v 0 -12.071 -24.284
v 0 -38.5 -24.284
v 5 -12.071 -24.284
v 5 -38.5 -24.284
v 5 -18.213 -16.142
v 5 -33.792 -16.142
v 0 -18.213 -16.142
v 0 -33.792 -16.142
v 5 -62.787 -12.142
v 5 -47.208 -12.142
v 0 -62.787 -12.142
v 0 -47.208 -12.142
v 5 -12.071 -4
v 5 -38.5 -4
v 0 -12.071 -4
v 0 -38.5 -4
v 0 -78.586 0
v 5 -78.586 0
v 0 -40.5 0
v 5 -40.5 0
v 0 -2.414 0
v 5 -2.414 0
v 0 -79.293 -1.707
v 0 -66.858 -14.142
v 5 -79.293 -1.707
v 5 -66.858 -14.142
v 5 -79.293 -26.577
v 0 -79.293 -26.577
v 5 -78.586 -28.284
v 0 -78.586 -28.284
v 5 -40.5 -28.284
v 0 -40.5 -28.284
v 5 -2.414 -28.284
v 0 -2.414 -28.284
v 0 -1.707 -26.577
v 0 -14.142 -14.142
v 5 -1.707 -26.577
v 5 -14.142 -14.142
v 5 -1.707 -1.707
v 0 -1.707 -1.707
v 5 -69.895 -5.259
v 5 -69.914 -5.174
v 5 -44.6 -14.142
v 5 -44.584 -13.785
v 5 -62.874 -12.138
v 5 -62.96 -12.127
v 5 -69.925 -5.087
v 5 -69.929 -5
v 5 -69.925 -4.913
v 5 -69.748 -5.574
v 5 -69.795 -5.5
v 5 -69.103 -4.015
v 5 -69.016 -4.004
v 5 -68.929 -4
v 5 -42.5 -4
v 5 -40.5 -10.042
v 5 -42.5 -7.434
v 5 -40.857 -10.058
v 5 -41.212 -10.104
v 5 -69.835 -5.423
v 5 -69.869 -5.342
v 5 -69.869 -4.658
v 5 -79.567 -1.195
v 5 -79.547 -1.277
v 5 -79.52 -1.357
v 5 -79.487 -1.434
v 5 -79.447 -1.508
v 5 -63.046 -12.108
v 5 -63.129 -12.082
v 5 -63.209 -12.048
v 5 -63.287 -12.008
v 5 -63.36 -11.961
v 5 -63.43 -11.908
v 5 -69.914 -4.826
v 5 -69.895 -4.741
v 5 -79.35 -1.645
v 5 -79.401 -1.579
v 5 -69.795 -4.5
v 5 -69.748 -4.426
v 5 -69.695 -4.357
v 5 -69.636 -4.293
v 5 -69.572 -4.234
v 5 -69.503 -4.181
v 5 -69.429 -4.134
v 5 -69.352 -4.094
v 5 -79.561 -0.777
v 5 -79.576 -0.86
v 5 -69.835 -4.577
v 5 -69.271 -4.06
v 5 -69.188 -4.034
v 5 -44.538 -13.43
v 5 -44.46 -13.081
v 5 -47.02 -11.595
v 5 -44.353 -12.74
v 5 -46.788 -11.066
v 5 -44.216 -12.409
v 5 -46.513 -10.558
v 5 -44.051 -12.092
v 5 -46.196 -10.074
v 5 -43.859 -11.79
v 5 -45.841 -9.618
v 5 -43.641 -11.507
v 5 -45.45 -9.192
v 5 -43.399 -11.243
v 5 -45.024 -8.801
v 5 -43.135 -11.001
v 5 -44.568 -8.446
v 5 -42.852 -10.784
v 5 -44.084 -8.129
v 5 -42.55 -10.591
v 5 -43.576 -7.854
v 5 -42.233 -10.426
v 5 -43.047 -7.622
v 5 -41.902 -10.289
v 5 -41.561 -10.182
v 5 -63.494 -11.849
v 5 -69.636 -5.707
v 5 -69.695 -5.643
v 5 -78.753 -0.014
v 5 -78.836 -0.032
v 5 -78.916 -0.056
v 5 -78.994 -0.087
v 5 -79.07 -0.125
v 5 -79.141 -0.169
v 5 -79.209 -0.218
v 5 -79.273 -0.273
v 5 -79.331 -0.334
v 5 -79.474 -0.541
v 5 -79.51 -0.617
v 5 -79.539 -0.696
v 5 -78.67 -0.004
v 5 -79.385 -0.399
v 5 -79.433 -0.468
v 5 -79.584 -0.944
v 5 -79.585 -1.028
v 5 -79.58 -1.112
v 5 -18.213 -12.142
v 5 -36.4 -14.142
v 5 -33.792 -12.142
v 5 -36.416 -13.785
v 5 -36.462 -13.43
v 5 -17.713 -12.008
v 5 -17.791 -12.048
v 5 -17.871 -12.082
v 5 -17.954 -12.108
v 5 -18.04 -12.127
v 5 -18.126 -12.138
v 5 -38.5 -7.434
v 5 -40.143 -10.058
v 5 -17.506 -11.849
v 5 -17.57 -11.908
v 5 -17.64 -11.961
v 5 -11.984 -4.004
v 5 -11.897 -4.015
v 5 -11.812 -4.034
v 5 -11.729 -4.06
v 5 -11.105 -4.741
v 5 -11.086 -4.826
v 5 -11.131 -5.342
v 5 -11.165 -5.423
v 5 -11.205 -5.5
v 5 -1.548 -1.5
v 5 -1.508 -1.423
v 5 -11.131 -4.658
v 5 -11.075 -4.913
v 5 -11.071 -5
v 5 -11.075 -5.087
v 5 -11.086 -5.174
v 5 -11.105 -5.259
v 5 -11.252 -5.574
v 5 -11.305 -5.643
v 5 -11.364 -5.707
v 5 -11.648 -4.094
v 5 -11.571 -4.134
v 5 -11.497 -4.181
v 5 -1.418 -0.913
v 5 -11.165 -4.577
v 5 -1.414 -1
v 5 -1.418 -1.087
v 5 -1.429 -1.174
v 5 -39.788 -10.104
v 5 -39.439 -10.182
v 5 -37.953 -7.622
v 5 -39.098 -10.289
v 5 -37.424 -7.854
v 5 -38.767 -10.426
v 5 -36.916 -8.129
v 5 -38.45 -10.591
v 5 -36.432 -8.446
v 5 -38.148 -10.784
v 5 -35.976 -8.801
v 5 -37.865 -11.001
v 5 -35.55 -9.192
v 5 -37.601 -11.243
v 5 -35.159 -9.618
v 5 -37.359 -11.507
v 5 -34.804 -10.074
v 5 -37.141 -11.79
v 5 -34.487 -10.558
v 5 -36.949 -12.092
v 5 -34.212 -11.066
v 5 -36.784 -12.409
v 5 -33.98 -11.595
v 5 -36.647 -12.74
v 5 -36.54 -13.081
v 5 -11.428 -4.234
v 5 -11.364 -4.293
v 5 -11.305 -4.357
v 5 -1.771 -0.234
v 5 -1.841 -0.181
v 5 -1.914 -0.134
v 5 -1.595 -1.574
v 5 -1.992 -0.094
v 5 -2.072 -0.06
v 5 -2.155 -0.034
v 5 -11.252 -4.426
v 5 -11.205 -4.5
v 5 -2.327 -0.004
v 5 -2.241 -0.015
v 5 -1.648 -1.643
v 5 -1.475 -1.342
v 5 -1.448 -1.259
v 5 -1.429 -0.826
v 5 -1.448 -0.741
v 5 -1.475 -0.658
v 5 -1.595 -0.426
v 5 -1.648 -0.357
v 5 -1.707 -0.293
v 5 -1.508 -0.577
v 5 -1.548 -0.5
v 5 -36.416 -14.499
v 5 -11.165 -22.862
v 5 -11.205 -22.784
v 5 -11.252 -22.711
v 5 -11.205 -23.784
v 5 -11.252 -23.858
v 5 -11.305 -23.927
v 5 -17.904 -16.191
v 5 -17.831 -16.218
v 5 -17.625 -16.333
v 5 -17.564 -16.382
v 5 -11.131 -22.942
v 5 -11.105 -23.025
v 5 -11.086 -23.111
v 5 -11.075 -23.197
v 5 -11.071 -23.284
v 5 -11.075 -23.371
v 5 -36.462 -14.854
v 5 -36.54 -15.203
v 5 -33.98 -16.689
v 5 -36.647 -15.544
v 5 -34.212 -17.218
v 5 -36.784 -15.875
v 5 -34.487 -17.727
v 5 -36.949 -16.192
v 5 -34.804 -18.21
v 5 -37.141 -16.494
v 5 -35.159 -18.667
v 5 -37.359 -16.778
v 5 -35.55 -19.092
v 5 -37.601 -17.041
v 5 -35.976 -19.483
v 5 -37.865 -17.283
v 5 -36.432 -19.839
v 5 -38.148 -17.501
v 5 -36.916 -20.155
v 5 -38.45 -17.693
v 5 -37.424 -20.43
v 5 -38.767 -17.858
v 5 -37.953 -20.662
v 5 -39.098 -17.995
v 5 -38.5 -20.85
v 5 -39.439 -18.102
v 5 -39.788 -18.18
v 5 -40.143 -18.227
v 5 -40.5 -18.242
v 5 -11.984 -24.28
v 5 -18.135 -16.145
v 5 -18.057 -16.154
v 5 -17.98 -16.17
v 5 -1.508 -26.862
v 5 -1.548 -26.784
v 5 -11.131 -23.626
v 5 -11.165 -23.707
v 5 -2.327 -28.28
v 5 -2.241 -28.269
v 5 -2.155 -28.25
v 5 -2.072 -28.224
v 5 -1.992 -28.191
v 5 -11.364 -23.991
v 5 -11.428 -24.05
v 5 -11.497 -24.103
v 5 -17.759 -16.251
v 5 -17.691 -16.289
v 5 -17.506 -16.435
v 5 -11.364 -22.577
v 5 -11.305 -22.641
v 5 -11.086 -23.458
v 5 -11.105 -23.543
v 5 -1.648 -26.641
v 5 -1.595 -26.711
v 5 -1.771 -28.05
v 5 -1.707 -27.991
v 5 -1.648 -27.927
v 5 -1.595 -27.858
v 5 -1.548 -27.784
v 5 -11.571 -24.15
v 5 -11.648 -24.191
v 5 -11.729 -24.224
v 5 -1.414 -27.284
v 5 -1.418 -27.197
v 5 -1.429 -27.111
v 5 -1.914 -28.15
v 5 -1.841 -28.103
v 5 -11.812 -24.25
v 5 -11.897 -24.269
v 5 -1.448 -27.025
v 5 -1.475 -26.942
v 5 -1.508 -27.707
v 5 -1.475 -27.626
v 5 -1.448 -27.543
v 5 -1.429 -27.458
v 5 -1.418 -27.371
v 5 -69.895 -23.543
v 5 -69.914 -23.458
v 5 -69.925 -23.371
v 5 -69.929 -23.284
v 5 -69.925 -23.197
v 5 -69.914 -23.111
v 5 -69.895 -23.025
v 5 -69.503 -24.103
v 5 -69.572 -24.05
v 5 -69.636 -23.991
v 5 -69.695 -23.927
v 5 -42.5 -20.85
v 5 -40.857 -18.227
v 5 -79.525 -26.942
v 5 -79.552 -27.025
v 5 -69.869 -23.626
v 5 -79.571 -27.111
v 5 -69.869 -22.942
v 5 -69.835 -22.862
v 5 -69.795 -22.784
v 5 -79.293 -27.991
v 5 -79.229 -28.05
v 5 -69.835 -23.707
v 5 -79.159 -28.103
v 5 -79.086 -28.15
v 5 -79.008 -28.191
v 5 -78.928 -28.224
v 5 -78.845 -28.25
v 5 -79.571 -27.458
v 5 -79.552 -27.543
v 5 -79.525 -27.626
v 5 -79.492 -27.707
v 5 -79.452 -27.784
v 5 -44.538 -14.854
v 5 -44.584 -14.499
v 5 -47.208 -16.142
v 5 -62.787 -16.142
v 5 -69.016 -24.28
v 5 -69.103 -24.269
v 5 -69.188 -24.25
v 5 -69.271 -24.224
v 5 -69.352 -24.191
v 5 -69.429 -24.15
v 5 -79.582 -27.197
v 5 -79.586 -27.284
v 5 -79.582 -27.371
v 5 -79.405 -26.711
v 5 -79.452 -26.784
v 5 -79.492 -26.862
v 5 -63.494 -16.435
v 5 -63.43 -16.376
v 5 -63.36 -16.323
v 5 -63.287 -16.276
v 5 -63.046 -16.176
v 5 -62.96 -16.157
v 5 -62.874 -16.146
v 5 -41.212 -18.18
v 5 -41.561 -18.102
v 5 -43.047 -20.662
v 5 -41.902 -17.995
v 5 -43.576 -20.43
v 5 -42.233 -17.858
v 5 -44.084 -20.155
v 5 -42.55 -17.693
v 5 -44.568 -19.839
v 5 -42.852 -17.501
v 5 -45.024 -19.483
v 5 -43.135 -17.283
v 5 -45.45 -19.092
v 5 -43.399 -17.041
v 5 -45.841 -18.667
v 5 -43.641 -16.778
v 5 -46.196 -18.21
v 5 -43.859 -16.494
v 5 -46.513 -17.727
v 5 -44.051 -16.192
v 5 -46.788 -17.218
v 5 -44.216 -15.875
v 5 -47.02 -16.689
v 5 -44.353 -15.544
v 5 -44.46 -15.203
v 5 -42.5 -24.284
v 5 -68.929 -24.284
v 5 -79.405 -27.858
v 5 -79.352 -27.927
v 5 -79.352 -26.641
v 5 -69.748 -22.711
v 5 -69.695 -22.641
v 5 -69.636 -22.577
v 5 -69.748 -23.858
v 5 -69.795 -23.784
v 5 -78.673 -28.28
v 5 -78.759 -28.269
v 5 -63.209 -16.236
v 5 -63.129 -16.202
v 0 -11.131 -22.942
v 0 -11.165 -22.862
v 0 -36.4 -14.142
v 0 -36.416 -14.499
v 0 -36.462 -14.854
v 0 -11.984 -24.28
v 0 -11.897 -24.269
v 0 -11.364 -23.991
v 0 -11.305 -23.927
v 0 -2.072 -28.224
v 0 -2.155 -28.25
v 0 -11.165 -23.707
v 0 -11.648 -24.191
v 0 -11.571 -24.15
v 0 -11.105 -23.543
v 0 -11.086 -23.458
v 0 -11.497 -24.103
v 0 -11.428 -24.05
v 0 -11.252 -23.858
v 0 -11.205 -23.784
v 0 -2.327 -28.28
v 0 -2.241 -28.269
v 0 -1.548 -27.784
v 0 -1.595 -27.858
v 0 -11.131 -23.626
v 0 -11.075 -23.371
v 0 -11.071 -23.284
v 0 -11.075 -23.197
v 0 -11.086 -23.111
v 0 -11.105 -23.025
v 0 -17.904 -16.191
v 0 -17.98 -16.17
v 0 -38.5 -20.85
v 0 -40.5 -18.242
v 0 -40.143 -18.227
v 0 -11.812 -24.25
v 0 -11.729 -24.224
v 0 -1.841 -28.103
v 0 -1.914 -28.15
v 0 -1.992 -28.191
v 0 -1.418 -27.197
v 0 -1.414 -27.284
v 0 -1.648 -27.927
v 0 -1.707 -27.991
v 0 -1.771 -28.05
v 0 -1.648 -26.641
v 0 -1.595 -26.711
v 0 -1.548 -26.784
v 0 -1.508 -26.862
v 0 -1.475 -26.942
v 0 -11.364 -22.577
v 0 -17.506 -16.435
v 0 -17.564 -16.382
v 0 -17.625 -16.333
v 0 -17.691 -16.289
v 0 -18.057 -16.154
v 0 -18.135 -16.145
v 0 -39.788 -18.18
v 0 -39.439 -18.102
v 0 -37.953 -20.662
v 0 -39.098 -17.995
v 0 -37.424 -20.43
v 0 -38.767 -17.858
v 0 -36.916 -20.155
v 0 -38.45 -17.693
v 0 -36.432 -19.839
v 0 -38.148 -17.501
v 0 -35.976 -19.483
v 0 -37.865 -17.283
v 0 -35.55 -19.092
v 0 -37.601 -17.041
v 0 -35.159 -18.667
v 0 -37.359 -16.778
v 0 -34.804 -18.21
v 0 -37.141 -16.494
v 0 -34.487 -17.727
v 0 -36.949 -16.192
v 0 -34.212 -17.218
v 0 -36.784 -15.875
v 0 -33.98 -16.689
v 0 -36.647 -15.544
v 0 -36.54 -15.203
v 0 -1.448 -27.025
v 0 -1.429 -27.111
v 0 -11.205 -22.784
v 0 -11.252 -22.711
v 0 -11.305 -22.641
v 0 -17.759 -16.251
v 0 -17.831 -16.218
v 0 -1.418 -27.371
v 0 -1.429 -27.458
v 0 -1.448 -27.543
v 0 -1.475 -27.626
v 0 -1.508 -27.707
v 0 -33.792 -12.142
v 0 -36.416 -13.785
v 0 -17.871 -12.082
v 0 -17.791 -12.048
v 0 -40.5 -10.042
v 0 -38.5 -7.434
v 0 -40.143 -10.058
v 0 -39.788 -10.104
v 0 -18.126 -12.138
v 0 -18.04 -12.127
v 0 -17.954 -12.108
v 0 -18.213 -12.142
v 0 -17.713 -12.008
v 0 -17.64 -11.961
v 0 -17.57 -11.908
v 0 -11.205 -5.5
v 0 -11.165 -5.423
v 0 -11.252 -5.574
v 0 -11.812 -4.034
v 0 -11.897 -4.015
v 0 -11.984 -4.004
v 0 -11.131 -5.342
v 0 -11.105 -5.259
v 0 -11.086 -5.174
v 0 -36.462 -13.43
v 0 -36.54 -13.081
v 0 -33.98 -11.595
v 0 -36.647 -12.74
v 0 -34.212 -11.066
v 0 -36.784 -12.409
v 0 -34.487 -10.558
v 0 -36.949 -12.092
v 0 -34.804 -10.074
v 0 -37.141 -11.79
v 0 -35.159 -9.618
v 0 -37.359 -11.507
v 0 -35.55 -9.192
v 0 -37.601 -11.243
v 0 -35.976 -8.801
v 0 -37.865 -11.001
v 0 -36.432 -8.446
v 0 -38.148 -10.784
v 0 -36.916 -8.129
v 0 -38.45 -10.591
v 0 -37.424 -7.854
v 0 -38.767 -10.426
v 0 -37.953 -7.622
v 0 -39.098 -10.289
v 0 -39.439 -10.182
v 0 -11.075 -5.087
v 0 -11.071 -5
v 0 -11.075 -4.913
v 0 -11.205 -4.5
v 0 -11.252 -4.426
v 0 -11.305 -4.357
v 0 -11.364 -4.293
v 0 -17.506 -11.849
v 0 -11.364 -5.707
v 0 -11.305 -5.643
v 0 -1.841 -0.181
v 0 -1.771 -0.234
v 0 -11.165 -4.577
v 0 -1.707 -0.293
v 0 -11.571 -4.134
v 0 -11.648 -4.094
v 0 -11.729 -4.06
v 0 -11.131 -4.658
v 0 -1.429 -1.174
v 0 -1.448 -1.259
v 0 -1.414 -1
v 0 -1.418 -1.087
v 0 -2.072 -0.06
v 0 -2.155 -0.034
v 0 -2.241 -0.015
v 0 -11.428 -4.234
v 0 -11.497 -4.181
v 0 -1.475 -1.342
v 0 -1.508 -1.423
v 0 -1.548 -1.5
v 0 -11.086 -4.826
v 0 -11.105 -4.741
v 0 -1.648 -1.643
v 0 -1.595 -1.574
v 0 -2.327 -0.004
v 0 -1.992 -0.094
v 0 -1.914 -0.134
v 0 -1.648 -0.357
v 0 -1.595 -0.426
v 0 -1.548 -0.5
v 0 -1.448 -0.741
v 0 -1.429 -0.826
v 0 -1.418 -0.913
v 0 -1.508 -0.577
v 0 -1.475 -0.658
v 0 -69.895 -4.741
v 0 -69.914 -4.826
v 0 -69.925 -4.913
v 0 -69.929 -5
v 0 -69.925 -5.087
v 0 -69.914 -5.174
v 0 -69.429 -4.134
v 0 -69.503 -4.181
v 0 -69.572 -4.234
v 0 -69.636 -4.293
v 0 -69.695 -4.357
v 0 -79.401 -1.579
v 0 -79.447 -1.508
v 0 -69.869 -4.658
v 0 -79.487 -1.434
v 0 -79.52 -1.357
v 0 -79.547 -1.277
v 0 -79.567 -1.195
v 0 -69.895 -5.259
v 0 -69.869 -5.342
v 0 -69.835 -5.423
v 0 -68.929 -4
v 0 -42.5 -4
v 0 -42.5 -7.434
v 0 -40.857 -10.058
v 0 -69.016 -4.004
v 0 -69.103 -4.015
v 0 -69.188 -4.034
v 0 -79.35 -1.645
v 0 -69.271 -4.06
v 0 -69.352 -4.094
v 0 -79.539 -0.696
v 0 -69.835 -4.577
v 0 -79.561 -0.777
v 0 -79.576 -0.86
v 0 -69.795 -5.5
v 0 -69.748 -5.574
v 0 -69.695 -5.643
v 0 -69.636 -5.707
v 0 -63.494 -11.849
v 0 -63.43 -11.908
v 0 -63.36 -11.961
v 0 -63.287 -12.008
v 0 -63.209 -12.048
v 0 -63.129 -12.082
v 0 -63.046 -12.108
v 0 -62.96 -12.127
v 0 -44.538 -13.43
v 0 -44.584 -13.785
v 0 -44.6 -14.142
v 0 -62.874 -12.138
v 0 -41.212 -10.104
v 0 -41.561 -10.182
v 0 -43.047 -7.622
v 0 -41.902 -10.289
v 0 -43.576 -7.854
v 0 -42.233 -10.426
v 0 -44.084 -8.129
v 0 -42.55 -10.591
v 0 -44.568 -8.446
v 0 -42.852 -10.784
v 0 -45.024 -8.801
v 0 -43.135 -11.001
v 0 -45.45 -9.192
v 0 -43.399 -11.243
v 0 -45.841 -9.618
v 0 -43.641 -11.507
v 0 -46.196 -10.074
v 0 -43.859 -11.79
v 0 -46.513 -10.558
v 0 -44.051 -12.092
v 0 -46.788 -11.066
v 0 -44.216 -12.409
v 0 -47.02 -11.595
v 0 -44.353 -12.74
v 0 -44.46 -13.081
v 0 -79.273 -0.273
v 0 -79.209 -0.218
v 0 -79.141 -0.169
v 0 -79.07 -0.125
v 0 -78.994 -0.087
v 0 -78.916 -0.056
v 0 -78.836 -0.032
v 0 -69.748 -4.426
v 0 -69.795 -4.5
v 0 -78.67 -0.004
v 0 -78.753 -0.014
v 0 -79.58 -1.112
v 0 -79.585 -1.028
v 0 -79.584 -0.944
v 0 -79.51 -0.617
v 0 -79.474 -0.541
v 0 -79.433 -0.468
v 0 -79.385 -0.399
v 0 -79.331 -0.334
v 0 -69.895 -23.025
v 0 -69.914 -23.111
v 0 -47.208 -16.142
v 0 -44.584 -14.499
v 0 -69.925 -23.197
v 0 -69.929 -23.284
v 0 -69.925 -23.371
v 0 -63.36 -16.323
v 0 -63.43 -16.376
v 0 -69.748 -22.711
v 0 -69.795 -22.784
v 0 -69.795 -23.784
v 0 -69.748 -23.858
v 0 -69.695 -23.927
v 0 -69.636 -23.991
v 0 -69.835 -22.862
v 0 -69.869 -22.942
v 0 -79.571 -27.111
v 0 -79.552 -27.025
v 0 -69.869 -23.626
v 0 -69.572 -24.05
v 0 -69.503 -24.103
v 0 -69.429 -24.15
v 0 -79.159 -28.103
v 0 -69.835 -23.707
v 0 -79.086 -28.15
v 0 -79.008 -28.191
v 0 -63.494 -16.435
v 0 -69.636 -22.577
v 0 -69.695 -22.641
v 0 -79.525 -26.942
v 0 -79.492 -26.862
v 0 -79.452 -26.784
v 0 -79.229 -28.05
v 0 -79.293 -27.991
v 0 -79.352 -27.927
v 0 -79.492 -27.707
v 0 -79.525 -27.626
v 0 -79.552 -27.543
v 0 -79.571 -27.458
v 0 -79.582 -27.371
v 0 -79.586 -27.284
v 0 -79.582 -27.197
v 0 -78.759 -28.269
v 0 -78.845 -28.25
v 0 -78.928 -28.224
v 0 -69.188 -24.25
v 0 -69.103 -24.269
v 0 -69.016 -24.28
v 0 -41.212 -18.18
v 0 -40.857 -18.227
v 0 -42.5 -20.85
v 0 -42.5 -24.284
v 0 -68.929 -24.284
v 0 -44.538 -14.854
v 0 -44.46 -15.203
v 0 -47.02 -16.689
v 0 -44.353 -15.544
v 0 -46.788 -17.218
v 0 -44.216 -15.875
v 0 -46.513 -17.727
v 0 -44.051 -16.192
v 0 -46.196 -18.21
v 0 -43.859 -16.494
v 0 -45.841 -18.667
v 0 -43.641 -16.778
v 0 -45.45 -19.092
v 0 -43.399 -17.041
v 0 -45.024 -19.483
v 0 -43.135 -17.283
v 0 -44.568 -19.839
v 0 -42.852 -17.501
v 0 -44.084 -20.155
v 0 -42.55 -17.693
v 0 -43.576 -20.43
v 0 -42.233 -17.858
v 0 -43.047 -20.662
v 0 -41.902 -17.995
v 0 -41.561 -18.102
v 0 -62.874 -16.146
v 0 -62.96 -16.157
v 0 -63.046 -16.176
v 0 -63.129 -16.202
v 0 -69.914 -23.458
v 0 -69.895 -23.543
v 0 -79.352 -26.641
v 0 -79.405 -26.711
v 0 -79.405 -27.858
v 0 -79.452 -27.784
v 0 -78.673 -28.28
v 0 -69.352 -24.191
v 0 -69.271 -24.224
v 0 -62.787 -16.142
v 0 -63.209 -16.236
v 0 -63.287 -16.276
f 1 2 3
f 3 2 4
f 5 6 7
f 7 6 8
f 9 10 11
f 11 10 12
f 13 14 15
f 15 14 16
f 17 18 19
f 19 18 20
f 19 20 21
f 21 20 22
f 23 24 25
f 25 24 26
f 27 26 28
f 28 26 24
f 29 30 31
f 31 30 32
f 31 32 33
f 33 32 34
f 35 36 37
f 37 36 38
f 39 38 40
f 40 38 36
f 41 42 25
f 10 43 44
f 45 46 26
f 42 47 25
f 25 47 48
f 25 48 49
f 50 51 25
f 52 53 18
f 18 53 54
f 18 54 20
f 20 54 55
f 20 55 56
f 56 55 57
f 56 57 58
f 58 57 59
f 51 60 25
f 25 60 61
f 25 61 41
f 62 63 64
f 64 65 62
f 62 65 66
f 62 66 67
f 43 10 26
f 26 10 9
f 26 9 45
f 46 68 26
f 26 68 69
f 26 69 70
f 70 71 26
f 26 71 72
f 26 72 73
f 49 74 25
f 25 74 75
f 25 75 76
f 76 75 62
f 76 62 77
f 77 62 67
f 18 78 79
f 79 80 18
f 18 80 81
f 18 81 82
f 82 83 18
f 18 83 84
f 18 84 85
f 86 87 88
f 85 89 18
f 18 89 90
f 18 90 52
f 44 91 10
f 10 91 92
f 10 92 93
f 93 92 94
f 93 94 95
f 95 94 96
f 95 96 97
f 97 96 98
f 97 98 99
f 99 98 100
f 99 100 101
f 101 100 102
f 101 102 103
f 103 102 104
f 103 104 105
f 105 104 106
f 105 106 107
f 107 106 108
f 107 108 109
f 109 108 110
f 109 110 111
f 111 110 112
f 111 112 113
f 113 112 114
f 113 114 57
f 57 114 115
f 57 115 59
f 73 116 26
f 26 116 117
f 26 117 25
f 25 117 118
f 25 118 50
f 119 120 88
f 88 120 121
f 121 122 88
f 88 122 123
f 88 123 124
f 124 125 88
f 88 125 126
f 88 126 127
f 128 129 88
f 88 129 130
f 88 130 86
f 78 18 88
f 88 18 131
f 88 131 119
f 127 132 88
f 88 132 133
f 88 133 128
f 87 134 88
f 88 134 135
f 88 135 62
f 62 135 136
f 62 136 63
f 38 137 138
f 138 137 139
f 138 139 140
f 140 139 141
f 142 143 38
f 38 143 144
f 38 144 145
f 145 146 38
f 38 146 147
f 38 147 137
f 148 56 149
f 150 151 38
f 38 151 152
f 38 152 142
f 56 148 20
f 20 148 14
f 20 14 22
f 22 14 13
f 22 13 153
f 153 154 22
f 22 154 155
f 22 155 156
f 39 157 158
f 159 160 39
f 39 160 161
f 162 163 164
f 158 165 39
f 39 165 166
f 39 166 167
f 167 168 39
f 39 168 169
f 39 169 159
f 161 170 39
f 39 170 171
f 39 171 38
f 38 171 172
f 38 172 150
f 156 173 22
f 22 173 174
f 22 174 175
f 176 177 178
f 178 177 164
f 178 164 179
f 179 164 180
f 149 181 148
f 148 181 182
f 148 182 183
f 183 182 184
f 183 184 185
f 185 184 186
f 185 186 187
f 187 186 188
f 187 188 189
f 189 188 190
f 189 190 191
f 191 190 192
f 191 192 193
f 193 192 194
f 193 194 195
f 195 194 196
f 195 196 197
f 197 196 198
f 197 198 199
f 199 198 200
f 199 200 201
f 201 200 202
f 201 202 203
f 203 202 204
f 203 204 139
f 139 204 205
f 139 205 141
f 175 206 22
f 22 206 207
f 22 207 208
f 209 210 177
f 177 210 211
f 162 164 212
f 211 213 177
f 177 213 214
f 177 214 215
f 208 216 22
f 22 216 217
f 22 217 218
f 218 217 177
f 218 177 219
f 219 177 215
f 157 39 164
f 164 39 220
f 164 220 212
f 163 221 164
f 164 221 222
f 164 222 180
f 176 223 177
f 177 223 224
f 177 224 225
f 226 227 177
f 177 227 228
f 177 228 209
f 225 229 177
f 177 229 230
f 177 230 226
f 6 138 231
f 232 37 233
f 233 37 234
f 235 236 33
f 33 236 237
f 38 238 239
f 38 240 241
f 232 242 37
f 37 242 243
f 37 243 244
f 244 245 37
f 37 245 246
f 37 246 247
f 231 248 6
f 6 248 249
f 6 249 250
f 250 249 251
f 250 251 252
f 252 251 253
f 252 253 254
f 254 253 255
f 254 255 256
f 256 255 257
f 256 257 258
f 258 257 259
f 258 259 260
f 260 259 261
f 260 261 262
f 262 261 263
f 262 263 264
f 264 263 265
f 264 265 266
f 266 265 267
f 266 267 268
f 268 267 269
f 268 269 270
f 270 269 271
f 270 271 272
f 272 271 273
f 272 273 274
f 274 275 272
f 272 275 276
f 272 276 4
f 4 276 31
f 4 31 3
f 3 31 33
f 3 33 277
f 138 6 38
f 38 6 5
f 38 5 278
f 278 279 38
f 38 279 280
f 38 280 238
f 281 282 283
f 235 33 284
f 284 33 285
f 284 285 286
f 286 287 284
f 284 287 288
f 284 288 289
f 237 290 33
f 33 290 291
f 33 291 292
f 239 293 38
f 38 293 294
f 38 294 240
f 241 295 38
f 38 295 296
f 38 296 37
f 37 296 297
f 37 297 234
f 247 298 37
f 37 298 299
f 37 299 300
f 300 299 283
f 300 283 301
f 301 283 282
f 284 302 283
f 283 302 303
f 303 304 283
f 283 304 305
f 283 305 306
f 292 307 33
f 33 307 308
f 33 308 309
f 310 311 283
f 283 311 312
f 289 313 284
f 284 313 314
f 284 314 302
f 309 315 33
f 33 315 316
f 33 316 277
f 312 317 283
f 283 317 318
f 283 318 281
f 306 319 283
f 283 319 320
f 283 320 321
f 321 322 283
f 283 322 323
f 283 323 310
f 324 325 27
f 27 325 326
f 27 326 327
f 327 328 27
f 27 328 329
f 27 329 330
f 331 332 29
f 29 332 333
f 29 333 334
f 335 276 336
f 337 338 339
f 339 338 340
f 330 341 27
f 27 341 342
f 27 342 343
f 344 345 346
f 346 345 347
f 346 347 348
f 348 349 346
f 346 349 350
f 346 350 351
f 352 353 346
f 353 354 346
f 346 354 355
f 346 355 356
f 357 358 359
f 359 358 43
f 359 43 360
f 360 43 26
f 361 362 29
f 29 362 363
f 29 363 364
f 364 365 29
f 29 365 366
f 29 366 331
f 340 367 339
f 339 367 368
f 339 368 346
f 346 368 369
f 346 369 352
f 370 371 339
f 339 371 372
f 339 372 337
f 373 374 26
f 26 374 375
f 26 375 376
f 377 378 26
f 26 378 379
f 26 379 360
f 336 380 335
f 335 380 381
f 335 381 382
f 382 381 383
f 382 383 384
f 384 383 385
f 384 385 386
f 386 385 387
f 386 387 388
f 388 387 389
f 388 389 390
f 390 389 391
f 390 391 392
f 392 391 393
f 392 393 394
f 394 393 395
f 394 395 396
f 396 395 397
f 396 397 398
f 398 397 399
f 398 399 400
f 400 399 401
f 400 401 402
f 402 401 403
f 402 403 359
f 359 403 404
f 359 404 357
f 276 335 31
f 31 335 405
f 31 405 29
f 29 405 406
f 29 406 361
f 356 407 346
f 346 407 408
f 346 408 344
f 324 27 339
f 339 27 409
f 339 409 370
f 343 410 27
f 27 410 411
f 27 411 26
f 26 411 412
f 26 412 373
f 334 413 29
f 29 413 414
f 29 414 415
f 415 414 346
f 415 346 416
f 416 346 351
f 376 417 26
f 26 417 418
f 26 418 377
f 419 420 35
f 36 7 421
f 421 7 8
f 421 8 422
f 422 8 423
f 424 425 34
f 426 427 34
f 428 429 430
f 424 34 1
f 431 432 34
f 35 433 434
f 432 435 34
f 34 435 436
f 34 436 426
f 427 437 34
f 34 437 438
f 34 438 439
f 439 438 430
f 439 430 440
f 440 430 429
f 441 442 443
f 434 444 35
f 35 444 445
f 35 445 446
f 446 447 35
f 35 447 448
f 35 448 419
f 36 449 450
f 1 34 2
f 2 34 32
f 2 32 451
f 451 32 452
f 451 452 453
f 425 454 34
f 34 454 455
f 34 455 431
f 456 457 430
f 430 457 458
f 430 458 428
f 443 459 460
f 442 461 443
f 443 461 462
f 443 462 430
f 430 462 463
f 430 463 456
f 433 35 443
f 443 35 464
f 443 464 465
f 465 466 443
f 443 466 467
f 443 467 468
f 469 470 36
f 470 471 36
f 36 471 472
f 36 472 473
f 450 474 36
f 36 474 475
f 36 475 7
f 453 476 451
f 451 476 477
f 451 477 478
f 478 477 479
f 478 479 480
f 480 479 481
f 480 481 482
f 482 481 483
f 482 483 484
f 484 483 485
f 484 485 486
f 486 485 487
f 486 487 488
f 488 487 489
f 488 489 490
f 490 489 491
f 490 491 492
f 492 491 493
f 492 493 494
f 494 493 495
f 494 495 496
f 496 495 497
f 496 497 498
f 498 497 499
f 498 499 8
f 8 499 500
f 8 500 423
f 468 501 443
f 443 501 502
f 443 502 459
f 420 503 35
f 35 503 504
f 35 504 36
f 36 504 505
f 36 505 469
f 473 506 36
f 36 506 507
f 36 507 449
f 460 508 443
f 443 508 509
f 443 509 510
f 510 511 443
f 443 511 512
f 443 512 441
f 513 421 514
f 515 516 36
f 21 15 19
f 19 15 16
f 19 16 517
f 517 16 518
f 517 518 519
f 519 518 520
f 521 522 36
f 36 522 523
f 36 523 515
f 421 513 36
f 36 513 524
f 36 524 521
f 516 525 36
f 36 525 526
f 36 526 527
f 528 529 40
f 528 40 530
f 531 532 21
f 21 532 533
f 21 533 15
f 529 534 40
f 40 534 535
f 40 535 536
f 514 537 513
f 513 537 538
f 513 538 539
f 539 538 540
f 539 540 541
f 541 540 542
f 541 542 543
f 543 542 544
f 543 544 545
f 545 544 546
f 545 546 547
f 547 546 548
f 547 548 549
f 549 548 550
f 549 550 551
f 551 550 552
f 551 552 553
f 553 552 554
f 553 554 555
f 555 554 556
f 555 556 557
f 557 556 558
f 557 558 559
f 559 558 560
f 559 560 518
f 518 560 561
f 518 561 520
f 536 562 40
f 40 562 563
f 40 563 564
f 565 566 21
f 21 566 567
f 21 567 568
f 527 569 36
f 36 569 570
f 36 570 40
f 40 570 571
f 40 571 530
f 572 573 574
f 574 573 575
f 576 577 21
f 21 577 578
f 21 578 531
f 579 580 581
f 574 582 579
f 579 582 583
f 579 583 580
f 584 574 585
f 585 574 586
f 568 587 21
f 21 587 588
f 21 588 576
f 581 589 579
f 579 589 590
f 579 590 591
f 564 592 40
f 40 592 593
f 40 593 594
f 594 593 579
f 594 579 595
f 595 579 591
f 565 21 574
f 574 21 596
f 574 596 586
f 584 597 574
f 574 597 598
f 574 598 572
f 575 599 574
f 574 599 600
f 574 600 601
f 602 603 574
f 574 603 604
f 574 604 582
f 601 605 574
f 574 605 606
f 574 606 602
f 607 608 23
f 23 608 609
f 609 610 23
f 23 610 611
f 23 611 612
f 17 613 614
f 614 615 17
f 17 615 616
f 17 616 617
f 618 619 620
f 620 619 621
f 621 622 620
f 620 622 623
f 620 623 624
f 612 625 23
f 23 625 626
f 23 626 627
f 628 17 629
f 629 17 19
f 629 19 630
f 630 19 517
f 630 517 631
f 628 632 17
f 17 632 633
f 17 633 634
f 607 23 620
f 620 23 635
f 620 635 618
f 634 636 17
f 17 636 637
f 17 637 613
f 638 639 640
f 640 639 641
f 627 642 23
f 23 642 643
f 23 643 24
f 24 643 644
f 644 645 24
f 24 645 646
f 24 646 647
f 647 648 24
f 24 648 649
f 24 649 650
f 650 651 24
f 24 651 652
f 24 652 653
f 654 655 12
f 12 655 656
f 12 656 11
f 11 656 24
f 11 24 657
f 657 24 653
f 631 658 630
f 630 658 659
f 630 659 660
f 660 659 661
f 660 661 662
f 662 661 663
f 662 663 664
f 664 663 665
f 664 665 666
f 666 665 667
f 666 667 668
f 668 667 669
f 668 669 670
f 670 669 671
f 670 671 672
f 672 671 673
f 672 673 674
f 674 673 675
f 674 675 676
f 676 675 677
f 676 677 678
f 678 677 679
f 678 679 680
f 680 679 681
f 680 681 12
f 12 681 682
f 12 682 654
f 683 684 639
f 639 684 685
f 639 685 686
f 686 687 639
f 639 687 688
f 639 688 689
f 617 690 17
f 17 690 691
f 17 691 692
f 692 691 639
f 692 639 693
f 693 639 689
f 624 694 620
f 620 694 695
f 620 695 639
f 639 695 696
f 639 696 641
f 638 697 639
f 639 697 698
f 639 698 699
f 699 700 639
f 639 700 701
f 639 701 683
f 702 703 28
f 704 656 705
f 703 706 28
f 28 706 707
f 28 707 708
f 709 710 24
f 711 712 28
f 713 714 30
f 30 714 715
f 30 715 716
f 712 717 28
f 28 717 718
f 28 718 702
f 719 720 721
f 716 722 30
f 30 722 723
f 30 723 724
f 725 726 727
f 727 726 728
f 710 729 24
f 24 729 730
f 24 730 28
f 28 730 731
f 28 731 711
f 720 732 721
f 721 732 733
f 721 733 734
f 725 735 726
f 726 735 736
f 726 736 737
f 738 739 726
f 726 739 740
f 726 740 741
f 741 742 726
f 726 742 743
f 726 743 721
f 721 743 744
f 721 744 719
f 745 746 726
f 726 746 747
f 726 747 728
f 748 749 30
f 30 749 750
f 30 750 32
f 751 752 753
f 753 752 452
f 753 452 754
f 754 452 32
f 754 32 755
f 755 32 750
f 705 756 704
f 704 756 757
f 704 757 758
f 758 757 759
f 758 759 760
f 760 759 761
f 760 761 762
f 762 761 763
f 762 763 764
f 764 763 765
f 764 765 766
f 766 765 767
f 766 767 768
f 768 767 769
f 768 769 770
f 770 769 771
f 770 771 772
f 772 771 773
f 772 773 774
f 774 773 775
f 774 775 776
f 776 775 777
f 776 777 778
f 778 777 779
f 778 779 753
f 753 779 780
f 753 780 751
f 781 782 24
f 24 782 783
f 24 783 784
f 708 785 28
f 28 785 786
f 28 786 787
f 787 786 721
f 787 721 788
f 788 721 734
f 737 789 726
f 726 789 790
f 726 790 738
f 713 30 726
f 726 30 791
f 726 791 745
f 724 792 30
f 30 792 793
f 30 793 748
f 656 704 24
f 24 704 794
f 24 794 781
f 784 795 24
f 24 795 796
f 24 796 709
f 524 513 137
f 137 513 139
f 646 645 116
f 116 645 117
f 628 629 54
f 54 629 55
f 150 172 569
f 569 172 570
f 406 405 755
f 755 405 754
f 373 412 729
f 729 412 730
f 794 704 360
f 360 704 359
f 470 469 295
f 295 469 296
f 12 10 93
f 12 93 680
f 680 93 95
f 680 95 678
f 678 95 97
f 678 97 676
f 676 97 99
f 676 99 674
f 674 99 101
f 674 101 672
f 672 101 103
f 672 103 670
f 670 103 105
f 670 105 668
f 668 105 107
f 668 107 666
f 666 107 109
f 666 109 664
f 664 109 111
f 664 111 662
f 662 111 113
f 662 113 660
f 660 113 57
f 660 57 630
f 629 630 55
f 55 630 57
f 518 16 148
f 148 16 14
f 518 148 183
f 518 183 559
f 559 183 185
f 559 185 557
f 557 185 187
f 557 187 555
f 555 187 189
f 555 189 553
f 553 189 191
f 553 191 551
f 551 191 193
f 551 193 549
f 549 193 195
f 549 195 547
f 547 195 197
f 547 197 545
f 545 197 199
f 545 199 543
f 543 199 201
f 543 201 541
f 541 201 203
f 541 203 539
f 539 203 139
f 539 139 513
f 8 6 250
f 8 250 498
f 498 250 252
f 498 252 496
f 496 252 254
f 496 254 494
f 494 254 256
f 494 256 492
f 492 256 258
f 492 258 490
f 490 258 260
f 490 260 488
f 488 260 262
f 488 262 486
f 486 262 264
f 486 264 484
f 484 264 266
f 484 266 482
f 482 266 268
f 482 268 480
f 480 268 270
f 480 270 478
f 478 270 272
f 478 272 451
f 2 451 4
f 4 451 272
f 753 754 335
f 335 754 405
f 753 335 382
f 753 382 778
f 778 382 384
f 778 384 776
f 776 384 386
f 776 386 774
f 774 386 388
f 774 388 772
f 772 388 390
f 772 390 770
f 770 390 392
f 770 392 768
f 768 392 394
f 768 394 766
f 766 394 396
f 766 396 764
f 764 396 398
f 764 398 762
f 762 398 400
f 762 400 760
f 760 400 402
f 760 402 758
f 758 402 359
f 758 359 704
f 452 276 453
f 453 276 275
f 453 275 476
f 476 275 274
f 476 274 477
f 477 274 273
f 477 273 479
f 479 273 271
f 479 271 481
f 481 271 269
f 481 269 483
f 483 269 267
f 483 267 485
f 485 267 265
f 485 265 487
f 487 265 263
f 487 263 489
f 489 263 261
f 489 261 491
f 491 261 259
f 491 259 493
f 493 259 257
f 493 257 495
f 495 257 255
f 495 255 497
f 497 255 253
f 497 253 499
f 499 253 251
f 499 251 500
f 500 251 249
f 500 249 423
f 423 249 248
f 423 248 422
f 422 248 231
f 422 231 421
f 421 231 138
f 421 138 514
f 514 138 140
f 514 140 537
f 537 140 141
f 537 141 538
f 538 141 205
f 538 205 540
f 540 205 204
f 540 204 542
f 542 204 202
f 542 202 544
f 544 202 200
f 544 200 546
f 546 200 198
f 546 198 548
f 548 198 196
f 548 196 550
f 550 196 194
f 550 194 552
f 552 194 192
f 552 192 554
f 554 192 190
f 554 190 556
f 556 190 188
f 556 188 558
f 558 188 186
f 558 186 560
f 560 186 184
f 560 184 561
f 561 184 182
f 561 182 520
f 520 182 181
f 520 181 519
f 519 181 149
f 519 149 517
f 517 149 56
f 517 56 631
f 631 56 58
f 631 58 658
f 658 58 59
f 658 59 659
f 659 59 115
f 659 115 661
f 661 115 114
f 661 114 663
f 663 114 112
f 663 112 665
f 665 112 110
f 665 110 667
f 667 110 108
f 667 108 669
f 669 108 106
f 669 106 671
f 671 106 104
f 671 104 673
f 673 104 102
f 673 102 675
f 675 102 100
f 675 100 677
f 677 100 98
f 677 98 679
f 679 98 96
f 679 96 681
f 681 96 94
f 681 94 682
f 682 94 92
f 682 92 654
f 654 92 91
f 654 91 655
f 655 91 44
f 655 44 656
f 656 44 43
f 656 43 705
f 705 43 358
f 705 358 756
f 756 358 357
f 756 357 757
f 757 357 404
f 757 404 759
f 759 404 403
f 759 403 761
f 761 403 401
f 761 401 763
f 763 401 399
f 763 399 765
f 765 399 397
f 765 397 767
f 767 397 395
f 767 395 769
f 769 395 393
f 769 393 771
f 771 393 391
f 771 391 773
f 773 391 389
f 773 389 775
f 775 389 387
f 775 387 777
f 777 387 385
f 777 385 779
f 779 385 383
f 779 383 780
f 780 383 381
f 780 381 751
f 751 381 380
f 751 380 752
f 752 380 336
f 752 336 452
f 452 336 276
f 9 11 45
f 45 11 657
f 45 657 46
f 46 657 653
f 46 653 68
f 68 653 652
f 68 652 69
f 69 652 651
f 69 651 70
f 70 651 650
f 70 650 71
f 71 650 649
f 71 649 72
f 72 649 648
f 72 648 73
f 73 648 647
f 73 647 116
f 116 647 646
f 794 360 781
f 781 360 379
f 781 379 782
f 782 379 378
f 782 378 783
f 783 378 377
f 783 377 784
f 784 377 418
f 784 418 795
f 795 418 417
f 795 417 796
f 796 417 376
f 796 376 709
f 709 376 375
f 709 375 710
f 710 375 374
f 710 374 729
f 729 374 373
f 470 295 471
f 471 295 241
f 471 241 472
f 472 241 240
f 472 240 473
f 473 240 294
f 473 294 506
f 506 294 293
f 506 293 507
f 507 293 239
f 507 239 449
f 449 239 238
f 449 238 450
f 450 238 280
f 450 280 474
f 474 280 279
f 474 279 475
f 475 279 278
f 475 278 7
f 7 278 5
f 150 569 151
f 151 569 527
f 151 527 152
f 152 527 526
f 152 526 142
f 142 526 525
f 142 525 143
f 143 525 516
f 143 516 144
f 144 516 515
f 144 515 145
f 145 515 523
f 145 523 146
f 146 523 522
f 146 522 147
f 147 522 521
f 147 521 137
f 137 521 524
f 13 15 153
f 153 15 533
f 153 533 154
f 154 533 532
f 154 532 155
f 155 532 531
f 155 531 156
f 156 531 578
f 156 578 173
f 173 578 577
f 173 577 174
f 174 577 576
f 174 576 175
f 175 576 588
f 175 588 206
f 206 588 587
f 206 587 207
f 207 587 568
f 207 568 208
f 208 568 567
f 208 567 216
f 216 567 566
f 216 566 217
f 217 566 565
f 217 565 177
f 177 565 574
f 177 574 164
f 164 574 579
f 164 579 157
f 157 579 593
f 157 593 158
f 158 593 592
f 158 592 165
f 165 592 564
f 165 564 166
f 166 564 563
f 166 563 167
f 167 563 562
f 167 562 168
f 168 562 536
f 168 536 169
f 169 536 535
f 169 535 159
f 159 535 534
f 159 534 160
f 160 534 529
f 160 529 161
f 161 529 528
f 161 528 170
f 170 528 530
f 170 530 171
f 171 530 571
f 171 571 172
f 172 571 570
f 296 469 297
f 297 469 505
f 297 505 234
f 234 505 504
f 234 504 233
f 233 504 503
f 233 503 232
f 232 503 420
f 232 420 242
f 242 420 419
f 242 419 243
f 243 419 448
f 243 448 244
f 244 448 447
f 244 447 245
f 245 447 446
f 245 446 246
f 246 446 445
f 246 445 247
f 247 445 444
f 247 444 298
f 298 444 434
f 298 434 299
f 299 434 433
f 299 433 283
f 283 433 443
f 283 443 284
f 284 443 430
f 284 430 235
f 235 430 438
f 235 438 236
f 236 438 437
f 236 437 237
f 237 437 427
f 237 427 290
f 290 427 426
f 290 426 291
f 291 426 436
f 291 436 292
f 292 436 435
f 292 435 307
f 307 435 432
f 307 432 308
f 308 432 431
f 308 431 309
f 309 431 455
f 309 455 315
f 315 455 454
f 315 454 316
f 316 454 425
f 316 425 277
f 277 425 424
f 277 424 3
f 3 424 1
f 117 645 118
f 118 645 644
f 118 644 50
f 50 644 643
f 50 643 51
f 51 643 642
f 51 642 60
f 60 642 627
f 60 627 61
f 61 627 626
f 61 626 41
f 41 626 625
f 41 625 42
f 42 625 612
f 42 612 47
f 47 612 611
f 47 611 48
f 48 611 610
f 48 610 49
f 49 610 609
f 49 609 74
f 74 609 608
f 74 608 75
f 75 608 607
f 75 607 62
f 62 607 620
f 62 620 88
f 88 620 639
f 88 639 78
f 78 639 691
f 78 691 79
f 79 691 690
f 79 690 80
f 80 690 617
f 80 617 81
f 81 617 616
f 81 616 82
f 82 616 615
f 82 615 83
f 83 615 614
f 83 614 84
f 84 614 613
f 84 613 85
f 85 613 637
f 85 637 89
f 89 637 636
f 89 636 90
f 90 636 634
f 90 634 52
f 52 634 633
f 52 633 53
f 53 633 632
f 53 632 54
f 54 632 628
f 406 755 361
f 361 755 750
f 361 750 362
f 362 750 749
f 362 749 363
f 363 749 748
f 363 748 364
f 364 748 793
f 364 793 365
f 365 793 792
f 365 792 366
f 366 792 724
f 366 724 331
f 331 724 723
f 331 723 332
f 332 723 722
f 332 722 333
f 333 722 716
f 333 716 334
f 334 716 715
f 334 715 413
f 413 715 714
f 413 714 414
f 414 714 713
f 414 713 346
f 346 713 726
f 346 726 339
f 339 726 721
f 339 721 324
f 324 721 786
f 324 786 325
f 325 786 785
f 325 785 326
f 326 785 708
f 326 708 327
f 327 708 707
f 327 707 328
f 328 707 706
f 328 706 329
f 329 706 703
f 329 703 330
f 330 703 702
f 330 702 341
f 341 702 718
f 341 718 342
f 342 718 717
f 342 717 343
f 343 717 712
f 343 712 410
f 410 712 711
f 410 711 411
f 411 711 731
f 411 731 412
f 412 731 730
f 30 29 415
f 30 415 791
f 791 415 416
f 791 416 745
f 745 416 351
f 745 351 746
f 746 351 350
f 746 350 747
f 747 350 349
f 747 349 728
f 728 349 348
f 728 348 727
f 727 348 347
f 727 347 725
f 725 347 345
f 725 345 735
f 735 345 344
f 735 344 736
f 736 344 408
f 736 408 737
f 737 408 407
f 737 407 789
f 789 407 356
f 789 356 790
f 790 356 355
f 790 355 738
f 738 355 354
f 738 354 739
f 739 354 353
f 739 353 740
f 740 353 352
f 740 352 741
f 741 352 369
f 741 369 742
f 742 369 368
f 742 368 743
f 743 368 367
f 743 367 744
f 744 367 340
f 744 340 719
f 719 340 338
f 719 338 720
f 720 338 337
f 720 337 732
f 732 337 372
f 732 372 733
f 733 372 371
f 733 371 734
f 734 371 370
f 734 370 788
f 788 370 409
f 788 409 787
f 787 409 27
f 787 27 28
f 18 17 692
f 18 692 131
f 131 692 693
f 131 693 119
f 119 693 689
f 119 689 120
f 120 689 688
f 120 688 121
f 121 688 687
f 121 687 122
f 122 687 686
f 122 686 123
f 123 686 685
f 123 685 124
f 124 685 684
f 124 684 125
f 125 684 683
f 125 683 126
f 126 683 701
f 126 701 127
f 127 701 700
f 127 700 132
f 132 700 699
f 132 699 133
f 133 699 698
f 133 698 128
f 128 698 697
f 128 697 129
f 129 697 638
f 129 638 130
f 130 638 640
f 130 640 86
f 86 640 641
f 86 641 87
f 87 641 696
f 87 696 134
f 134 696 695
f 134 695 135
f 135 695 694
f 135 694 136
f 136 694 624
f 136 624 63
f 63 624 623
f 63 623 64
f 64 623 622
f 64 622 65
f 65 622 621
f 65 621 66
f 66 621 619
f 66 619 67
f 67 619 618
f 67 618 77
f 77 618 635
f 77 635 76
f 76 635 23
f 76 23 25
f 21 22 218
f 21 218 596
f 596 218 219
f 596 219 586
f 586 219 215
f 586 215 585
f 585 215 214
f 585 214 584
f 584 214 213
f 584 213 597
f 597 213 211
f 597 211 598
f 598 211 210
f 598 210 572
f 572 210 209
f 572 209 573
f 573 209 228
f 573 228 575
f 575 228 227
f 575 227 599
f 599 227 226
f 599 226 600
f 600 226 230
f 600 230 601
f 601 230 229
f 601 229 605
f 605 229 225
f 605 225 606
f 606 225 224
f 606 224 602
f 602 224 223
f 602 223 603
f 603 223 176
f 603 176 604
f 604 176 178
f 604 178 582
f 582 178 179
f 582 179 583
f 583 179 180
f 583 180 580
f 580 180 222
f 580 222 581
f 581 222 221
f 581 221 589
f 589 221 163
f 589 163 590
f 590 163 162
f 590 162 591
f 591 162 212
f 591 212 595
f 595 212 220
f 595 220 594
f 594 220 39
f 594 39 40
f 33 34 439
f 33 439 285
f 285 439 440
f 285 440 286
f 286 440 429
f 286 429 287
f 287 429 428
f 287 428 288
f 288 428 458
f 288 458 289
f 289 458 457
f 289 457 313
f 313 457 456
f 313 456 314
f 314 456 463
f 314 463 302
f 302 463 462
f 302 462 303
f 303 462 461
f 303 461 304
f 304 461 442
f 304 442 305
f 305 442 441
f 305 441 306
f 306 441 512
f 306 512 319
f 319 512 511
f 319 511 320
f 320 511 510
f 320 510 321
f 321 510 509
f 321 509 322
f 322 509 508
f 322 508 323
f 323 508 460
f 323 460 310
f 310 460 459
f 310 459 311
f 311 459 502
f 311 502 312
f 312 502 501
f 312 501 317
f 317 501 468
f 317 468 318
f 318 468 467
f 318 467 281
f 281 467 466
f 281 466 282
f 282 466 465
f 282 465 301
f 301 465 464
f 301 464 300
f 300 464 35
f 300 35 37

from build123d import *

# Parameters (mm, degrees)
BOSS_EXTRUDE1_DEPTH = 5
CUT_EXTRUDE1_DEPTH  = 86.941840799
BOSS_EXTRUDE2_DEPTH = 5
SKETCH7_R           = 4.1
CUT_EXTRUDE2_DEPTH  = 86.941840799
FILLET1_R           = 1


with BuildPart() as part:
    # Sketch1 → Boss-Extrude1 (new body)
    with BuildSketch(Plane(origin=(0, 0, 0), x_dir=(0, 0, -1), z_dir=(1, 0, 0))):
        Polygon((0, 0), (0, -81), (14.142135624, -66.857864376), (28.284271247, -81), (28.284271247, 0), (14.142135624, -14.142135624), align=None)
    extrude(amount=BOSS_EXTRUDE1_DEPTH)

    # Sketch2 → Cut-Extrude1 (cut, through all)
    with BuildSketch(Plane(origin=(5, 0, 0), x_dir=(0, 0, -1), z_dir=(1, 0, 0))):
        Polygon((4, -71.343145751), (12.142135624, -63.201010127), (12.142135624, -17.798989873), (4, -9.656854249), align=None)
        Polygon((16.142135624, -17.798989873), (16.142135624, -63.201010127), (24.284271247, -71.343145751), (24.284271247, -9.656854249), align=None)
    extrude(amount=-CUT_EXTRUDE1_DEPTH, mode=Mode.SUBTRACT)

    # Sketch6 → Boss-Extrude2 (add, through all)
    with BuildSketch(Plane(origin=(5, 0, 0), x_dir=(0, 0, -1), z_dir=(1, 0, 0))):
        with BuildLine():
            Line((20.850339556, -42.5), (16.142135624, -42.5))
            Line((16.142135624, -42.5), (16.142135624, -47.208203932))
            ThreePointArc((16.142135624, -47.208203932), (19.091883092, -45.449747468), (20.850339556, -42.5))
        make_face()
        with BuildLine():
            Line((20.850339556, -38.5), (16.142135624, -38.5))
            Line((16.142135624, -38.5), (16.142135624, -42.5))
            Line((16.142135624, -42.5), (20.850339556, -42.5))
            ThreePointArc((20.850339556, -42.5), (21.068802482, -41.510587075), (21.142135624, -40.5))
            ThreePointArc((21.142135624, -40.5), (21.068802482, -39.489412925), (20.850339556, -38.5))
        make_face()
        with BuildLine():
            Line((16.142135624, -33.791796068), (16.142135624, -38.5))
            Line((16.142135624, -38.5), (20.850339556, -38.5))
            ThreePointArc((20.850339556, -38.5), (19.091883092, -35.550252532), (16.142135624, -33.791796068))
        make_face()
        with BuildLine():
            ThreePointArc((12.142135624, -33.791796068), (9.192388155, -35.550252532), (7.433931691, -38.5))
            Line((7.433931691, -38.5), (12.142135624, -38.5))
            Line((12.142135624, -38.5), (12.142135624, -33.791796068))
        make_face()
        with BuildLine():
            Line((12.142135624, -42.5), (7.433931691, -42.5))
            ThreePointArc((7.433931691, -42.5), (9.192388155, -45.449747468), (12.142135624, -47.208203932))
            Line((12.142135624, -47.208203932), (12.142135624, -42.5))
        make_face()
        with BuildLine():
            Line((12.142135624, -38.5), (7.433931691, -38.5))
            ThreePointArc((7.433931691, -38.5), (7.142135624, -40.5), (7.433931691, -42.5))
            Line((7.433931691, -42.5), (12.142135624, -42.5))
            Line((12.142135624, -42.5), (12.142135624, -38.5))
        make_face()
        with BuildLine():
            Line((7.433931691, -38.5), (4, -38.5))
            Line((4, -38.5), (4, -42.5))
            Line((4, -42.5), (7.433931691, -42.5))
            ThreePointArc((7.433931691, -42.5), (7.142135624, -40.5), (7.433931691, -38.5))
        make_face()
        with BuildLine():
            Line((24.284271247, -38.5), (20.850339556, -38.5))
            ThreePointArc((20.850339556, -38.5), (21.068802482, -39.489412925), (21.142135624, -40.5))
            ThreePointArc((21.142135624, -40.5), (21.068802482, -41.510587075), (20.850339556, -42.5))
            Line((20.850339556, -42.5), (24.284271247, -42.5))
            Line((24.284271247, -42.5), (24.284271247, -38.5))
        make_face()
    extrude(amount=-BOSS_EXTRUDE2_DEPTH)

    # Sketch7 → Cut-Extrude2 (cut, through all)
    with BuildSketch(Plane(origin=(5, 0, 0), x_dir=(0, 0, -1), z_dir=(1, 0, 0))):
        with Locations((14.142135624, -40.5)):
            Circle(SKETCH7_R)
    extrude(amount=-CUT_EXTRUDE2_DEPTH, mode=Mode.SUBTRACT)

    # Fillet1
    fillet1_edges = [part.edges().sort_by_distance(p)[0] for p in [
        (2.5, 0, 0),
        (2.5, 0, -28.284271247),
        (2.5, -81, -28.284271247),
        (2.5, -81, 0),
        (2.5, -17.798989873, -12.142135624),
        (2.5, -63.201010127, -12.142135624),
        (2.5, -71.343145751, -4),
        (2.5, -9.656854249, -4),
        (2.5, -9.656854249, -24.284271247),
        (2.5, -71.343145751, -24.284271247),
        (2.5, -63.201010127, -16.142135624),
        (2.5, -17.798989873, -16.142135624),
    ]]
    fillet(fillet1_edges, radius=FILLET1_R)


solid = part.part
